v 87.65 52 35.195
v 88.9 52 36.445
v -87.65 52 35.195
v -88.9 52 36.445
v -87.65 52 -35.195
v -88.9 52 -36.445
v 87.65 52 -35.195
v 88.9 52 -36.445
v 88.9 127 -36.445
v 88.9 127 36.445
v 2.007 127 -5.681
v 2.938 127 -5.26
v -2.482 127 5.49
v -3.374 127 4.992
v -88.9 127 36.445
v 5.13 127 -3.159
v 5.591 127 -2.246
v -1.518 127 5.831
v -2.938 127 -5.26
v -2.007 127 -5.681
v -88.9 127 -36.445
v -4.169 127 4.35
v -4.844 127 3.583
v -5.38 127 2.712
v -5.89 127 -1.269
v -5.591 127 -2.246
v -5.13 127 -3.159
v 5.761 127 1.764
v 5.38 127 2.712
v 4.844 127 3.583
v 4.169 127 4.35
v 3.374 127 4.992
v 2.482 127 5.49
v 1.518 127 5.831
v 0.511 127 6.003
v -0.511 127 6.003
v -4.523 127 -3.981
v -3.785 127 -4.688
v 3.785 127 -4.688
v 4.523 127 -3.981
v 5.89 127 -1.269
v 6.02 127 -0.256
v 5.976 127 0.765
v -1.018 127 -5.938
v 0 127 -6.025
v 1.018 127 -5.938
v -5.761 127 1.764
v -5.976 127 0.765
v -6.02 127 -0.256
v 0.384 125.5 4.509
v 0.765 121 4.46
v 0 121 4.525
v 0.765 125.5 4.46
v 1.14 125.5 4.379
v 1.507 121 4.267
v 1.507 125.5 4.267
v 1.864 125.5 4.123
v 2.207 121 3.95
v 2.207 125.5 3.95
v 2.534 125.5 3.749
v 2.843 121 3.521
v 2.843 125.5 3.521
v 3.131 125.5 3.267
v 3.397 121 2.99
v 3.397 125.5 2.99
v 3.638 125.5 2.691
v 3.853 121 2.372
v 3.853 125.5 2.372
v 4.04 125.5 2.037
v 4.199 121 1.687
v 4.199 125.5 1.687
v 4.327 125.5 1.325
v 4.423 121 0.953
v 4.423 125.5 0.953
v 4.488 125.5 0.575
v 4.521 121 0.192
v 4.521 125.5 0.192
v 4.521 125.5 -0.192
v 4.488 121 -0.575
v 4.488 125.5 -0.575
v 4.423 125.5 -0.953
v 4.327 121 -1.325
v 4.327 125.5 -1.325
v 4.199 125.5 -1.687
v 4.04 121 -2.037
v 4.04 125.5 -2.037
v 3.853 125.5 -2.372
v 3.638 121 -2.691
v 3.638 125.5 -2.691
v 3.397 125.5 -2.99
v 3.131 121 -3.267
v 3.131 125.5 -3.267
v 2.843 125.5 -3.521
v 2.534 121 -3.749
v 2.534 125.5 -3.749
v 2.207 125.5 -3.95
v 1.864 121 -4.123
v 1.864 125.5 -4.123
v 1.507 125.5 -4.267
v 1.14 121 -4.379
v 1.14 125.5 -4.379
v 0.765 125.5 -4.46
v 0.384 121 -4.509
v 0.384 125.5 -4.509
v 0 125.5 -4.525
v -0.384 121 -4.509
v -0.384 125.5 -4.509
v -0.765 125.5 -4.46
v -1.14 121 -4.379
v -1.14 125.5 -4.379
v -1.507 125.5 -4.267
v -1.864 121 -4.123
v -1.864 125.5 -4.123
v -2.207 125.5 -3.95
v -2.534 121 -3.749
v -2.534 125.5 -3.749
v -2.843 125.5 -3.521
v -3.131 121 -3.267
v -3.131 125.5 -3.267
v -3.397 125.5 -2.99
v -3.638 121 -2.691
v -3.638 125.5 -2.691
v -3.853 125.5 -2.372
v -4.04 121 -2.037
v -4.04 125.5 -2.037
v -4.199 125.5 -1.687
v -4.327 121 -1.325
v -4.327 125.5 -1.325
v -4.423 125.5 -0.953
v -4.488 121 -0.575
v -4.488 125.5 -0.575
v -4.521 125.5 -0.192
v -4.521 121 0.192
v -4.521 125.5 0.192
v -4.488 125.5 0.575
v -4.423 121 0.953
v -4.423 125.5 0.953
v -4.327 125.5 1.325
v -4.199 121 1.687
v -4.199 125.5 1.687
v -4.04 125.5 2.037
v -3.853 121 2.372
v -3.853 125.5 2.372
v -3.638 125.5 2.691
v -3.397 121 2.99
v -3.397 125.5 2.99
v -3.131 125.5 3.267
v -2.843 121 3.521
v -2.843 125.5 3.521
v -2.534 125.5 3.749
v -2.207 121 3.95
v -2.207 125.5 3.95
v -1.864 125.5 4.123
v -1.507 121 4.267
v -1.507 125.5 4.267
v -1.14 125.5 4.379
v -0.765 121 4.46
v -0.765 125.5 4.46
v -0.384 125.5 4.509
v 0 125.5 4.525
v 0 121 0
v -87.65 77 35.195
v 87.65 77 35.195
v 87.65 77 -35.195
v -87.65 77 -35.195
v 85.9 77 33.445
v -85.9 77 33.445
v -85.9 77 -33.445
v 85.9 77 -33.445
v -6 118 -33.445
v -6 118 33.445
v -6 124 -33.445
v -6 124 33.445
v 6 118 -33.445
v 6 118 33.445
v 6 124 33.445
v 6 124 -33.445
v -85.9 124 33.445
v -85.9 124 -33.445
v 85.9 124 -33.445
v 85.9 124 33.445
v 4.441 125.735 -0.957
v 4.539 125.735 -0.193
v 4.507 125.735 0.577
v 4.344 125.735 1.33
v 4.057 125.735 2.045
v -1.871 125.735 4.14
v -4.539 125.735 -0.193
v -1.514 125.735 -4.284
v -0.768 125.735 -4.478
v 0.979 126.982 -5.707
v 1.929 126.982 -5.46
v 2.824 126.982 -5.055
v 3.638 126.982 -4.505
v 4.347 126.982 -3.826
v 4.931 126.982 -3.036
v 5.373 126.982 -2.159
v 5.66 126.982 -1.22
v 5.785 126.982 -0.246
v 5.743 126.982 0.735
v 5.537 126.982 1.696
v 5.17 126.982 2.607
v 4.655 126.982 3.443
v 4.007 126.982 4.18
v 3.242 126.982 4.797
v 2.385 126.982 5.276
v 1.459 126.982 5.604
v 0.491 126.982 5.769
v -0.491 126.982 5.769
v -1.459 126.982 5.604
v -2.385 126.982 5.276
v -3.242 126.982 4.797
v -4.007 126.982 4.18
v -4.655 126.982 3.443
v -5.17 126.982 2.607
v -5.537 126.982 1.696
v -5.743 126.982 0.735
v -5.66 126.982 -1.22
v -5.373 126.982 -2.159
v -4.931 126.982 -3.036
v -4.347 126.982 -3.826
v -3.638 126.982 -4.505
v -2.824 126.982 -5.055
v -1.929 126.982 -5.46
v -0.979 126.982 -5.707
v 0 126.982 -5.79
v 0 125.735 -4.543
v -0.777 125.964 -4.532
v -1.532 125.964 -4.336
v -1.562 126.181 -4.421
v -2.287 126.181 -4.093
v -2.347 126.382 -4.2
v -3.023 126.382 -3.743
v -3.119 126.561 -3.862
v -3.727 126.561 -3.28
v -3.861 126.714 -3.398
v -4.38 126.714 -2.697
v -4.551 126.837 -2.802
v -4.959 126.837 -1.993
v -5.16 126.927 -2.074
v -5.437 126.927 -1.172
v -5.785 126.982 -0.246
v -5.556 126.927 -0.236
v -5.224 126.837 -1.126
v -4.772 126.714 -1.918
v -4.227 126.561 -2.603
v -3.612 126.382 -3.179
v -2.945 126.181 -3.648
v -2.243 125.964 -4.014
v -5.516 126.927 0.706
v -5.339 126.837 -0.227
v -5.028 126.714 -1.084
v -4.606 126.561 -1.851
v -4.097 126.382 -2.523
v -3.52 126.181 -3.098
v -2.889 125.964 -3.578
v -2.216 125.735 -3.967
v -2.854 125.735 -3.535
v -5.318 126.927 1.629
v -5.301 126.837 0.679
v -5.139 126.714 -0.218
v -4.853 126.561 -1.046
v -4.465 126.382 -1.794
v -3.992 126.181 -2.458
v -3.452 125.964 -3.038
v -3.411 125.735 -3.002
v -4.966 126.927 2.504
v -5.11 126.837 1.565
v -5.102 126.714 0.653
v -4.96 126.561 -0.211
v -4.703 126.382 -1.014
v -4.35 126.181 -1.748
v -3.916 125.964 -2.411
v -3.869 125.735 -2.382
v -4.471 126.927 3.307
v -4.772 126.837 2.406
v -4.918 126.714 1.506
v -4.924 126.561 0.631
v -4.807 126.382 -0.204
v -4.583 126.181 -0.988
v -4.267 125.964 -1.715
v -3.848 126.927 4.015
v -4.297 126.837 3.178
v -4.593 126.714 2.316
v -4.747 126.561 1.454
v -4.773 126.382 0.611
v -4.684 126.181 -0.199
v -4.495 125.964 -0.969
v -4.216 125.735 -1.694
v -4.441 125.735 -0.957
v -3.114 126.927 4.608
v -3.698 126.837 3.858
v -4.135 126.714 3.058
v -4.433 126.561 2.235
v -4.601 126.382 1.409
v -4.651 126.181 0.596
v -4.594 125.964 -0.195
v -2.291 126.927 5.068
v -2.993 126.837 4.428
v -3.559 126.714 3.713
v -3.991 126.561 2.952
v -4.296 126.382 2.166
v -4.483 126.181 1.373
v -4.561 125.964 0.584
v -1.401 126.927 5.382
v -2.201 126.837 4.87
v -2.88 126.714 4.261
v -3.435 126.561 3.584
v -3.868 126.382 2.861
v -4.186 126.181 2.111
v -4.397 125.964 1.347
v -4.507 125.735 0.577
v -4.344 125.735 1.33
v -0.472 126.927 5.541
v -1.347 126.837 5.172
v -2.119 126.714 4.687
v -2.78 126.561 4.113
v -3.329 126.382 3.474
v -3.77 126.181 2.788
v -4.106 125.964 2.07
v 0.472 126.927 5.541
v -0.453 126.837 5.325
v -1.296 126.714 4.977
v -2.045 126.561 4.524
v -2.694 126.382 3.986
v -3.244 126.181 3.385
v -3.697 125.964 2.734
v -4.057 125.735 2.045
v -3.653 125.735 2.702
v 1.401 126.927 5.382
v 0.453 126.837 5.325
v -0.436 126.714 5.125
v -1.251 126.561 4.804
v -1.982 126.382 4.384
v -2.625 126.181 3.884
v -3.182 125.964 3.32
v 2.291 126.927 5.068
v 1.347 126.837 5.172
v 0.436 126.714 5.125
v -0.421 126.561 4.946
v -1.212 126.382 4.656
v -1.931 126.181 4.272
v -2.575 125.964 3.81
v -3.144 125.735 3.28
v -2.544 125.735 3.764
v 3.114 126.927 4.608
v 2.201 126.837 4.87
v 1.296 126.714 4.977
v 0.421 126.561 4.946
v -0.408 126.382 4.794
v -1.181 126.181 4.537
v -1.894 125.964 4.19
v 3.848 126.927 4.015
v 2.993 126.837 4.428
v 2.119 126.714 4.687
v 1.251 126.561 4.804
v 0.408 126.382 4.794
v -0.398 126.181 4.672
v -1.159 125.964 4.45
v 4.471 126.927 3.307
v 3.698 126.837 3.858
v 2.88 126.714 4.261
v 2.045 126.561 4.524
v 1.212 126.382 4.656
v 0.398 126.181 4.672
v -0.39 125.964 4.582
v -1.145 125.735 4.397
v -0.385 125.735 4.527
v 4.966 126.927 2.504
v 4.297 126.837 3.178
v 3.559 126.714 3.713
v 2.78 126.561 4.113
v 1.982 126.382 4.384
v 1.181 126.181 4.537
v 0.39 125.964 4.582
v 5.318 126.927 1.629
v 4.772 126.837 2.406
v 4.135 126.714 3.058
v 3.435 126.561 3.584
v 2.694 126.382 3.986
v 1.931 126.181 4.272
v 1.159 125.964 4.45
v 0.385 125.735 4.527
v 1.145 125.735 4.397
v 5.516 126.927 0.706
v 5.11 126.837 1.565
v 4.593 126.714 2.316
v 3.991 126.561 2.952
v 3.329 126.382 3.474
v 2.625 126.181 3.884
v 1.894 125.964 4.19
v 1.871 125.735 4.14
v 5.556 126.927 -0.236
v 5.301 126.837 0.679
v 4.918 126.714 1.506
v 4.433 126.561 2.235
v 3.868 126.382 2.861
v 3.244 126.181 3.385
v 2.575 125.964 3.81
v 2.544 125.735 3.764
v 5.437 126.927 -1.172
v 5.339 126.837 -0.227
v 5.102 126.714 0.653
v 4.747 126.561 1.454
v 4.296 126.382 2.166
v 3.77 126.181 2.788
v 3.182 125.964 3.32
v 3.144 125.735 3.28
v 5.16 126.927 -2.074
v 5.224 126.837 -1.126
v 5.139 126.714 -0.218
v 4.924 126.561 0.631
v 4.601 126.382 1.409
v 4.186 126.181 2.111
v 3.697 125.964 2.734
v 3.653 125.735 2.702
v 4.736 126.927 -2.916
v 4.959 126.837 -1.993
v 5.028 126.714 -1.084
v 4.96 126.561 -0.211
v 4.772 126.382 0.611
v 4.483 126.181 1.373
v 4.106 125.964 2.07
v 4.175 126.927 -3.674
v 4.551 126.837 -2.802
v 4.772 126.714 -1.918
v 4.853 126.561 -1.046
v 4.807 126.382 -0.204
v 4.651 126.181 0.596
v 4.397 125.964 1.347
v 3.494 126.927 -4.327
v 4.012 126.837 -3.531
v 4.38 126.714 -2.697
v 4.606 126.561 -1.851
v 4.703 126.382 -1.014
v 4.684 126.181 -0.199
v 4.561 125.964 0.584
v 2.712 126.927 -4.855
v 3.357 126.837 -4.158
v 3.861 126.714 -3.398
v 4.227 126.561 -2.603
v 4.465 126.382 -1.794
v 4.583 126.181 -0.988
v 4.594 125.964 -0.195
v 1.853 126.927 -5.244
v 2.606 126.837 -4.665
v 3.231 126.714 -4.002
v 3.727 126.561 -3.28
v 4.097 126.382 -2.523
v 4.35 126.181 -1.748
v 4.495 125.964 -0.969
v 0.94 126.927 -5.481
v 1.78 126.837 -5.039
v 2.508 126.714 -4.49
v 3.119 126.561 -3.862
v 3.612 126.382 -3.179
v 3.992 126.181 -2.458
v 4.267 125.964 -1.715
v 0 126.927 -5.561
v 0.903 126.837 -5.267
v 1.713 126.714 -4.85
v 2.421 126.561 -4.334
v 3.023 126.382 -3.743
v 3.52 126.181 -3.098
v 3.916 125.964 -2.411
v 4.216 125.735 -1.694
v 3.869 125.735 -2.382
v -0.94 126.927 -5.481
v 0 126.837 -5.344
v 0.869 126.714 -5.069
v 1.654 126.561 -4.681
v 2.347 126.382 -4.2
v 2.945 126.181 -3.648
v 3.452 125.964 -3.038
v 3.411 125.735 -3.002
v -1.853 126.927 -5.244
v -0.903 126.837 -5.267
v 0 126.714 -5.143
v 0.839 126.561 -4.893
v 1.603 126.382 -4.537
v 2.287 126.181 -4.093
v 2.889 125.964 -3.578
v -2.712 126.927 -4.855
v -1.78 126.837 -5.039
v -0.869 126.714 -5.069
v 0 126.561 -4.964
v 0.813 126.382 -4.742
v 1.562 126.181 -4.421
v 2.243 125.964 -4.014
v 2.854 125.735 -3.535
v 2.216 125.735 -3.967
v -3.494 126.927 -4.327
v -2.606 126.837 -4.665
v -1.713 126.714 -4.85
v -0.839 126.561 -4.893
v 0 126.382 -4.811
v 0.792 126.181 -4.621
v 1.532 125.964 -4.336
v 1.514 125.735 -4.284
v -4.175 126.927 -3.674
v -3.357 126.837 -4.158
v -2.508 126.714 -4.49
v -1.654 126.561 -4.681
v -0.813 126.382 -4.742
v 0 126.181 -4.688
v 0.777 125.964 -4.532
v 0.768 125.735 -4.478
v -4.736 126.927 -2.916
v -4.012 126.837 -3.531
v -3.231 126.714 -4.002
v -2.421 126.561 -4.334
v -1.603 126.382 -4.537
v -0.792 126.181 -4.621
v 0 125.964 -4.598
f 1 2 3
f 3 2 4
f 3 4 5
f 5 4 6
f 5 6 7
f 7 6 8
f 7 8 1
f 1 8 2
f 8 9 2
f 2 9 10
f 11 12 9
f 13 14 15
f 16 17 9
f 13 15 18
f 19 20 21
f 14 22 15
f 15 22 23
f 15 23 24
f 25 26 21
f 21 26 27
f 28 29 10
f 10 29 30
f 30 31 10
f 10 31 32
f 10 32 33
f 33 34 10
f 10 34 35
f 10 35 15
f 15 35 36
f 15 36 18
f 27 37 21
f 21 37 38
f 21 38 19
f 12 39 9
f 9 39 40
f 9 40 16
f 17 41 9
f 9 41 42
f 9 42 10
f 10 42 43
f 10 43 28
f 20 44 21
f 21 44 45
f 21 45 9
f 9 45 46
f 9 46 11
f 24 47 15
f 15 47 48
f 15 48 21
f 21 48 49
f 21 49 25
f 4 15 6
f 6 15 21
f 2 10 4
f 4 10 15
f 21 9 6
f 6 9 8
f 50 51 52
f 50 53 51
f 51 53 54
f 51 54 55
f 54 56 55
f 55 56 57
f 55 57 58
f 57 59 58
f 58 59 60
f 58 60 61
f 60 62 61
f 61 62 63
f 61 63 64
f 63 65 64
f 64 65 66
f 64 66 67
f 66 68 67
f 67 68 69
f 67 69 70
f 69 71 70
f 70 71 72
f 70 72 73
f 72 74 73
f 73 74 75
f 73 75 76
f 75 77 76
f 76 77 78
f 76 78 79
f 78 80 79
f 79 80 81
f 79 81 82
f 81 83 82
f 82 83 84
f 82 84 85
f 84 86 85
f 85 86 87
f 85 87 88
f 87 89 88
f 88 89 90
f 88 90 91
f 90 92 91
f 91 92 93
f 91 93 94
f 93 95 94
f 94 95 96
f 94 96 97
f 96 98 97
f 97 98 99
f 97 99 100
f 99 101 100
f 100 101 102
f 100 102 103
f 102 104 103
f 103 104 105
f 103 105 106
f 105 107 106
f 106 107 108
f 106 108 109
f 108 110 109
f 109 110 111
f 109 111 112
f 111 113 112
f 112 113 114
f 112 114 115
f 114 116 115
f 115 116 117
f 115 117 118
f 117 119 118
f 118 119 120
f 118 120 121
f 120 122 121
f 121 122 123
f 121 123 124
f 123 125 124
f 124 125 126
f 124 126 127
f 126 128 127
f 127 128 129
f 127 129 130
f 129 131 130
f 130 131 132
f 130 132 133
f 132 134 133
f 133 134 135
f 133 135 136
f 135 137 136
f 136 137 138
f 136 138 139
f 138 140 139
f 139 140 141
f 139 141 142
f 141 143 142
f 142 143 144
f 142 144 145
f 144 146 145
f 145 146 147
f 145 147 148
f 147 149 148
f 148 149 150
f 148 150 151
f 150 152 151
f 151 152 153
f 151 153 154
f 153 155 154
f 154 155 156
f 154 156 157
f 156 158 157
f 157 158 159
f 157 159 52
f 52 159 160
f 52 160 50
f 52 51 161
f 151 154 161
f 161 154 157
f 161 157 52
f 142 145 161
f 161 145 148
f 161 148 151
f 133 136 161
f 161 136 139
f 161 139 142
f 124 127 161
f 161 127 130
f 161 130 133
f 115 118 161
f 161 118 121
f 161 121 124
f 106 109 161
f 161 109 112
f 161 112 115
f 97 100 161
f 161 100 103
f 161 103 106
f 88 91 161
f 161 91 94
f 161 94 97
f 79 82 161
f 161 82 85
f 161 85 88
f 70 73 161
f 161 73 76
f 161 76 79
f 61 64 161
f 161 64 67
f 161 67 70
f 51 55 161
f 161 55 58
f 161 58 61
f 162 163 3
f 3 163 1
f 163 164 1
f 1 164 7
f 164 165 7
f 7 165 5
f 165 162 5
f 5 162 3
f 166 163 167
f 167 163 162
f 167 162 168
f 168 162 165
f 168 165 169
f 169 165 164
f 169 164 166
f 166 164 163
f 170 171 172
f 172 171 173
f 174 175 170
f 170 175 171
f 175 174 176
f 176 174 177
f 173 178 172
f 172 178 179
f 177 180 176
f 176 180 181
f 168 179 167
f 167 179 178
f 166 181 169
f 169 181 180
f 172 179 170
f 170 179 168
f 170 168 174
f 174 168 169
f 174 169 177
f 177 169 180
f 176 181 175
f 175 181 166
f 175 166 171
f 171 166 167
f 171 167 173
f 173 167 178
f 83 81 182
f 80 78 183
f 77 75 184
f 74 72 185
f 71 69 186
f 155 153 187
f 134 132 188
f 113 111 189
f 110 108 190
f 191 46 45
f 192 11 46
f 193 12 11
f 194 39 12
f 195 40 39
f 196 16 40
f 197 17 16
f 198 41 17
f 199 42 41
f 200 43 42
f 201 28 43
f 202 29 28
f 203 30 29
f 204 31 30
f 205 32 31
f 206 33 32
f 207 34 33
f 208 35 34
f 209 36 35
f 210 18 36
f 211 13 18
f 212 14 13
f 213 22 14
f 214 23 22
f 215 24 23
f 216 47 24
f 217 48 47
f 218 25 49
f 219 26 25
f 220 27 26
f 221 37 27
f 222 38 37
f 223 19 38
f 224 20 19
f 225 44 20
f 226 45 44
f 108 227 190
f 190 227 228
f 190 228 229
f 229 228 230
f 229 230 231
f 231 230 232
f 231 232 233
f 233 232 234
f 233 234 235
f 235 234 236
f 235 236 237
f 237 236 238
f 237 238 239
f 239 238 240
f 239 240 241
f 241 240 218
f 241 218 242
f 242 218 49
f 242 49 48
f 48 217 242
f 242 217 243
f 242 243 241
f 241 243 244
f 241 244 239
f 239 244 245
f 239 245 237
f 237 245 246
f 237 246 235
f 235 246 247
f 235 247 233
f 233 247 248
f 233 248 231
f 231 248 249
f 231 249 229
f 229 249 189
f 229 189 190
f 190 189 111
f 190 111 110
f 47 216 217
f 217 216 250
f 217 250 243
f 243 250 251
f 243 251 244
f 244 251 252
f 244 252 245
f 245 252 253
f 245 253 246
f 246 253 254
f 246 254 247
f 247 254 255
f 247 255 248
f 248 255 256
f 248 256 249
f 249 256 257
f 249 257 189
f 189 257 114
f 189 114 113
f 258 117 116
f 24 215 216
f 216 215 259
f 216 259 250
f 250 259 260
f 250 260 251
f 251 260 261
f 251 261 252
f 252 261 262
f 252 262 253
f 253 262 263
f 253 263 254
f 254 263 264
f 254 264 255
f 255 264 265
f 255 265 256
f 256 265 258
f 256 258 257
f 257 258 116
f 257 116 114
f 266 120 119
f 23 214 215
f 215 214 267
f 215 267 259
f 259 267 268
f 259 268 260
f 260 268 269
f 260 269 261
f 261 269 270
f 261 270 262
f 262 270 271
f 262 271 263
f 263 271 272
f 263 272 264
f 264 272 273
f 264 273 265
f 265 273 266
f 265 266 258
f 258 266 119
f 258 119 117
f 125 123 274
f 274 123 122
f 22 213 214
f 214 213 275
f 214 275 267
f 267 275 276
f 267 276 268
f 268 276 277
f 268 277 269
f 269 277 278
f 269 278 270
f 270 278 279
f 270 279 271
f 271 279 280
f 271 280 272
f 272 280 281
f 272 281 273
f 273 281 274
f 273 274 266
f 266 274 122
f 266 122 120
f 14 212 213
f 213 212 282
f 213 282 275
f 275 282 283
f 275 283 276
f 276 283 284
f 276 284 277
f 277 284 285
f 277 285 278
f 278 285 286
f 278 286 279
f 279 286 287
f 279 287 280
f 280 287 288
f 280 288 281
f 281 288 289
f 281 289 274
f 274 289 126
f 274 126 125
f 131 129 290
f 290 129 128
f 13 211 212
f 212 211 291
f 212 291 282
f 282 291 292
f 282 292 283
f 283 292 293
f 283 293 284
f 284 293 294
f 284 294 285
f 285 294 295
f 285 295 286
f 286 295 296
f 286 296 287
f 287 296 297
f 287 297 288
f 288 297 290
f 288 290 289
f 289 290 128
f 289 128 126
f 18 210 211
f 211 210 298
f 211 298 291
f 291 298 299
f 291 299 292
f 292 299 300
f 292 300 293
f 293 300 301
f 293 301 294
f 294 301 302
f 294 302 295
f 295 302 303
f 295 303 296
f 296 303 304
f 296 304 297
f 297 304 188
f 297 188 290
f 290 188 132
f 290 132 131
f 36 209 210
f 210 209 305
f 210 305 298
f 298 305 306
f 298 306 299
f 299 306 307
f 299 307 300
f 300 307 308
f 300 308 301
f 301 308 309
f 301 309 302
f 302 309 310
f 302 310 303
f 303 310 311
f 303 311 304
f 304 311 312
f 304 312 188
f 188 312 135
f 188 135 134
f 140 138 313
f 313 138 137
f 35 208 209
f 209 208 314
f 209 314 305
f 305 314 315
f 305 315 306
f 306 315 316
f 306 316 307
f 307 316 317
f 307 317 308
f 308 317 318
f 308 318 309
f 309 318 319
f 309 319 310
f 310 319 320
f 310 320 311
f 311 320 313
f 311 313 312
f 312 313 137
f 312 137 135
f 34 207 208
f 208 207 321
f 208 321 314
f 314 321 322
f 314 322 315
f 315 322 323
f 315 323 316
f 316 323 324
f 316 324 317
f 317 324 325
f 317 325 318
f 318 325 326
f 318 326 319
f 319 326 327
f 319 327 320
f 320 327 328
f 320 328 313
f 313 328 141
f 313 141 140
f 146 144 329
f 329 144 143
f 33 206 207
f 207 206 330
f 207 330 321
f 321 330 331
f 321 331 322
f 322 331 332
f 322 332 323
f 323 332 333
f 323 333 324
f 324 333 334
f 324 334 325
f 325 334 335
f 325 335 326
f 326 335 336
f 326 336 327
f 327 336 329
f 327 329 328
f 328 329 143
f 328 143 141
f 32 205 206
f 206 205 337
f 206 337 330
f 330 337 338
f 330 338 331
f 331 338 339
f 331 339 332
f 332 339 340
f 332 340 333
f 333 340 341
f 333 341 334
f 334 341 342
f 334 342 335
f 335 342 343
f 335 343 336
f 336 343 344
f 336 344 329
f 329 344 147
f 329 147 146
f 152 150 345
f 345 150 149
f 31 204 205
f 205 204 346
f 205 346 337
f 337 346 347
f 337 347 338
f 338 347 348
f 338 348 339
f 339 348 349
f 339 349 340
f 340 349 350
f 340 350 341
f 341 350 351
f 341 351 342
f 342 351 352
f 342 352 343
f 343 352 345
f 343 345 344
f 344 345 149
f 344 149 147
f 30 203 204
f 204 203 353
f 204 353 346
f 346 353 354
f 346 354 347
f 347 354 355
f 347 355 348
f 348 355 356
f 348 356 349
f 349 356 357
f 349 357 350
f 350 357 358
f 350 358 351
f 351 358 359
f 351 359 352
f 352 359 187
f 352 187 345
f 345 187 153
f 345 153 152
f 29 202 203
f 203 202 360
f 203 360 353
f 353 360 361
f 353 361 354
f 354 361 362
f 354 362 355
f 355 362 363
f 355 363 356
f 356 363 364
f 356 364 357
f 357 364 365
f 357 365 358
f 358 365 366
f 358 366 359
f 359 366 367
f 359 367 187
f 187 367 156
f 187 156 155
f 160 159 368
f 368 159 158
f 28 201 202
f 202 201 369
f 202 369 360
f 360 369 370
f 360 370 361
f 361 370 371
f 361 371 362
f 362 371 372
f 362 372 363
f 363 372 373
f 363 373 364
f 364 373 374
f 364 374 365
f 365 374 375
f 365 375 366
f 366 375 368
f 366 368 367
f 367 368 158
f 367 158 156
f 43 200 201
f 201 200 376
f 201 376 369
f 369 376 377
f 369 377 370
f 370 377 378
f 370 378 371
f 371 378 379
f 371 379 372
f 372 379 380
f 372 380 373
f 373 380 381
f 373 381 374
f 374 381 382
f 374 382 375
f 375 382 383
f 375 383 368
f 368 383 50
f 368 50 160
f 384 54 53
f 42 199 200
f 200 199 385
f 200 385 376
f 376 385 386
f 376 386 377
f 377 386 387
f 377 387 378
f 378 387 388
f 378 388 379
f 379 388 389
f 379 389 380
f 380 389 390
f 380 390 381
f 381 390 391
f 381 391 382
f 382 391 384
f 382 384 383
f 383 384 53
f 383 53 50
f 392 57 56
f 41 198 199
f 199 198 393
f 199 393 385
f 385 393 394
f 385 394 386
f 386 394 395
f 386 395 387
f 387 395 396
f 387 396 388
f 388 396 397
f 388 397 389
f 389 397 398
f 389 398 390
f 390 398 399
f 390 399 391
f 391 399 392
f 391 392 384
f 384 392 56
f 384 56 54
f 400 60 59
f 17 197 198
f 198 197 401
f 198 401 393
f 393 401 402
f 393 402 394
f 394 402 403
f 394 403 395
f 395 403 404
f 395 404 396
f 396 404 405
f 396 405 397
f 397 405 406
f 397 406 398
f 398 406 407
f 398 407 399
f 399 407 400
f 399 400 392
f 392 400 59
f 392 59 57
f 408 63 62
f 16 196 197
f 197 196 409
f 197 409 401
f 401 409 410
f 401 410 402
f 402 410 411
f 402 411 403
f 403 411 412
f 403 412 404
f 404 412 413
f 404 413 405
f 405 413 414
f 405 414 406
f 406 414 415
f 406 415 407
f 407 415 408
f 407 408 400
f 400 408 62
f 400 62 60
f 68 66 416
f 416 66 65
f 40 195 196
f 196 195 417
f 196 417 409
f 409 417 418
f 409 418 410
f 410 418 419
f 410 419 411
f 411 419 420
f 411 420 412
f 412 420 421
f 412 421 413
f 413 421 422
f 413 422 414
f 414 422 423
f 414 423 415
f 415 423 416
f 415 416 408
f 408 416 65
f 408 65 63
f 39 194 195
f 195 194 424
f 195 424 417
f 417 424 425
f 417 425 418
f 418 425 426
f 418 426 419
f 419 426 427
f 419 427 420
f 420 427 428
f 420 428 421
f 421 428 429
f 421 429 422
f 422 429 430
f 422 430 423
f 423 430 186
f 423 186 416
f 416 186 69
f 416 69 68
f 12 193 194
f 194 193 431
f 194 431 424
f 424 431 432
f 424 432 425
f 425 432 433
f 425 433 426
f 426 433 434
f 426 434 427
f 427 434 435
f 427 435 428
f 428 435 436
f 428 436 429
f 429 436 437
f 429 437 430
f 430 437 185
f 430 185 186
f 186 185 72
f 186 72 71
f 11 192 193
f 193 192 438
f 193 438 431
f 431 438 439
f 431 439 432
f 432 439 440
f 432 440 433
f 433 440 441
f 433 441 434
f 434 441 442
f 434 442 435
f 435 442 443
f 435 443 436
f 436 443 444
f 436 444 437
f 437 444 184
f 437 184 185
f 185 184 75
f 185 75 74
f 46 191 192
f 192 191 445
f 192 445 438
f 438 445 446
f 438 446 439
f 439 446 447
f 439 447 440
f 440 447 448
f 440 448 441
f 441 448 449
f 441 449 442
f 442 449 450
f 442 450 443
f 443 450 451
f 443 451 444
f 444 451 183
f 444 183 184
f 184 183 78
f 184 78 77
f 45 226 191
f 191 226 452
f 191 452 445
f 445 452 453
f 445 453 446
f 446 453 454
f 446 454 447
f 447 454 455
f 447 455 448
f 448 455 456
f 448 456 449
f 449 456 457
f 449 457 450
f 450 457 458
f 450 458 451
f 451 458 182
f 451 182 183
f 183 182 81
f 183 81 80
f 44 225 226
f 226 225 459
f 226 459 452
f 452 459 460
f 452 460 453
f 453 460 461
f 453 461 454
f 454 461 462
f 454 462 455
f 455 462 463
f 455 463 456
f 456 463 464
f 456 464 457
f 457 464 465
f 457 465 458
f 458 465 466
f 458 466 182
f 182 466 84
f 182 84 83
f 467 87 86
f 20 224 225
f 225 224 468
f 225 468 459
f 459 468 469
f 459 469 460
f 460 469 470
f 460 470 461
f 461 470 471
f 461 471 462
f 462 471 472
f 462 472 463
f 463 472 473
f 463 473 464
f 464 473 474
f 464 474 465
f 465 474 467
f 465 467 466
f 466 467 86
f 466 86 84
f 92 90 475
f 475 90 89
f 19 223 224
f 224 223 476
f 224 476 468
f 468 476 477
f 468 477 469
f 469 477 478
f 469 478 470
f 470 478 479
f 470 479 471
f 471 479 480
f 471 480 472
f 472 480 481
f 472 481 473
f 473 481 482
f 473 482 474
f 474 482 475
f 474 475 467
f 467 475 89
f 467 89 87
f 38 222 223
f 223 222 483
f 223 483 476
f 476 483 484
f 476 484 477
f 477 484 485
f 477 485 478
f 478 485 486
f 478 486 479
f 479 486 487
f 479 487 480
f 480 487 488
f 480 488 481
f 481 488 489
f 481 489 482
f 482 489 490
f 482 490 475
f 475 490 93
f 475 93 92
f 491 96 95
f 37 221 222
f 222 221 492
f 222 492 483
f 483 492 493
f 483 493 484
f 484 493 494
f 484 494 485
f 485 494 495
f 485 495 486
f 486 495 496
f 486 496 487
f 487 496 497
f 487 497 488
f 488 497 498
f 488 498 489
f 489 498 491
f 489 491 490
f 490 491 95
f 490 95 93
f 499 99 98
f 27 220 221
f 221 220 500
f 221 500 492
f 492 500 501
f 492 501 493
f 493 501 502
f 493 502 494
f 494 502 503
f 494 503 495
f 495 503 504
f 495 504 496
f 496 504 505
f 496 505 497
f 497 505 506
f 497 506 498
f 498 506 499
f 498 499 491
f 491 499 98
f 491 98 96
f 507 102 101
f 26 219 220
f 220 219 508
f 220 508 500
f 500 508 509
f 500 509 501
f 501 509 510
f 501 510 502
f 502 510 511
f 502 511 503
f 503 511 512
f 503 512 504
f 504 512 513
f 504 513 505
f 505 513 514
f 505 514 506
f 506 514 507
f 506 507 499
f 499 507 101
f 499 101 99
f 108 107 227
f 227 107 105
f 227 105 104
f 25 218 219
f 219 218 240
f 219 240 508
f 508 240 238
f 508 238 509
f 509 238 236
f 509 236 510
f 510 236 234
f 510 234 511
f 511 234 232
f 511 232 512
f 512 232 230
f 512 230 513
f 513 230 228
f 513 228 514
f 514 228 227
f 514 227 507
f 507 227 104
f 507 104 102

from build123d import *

# Parameters (mm, degrees)
SKETCH1_W           = 177.8
SKETCH1_H           = 254
BOSS_EXTRUDE1_DEPTH = 36.445
SHELL1_T            = 3
SKETCH2_R           = 22
CUT_EXTRUDE1_DEPTH  = 3
SKETCH3_R           = 5
CUT_EXTRUDE2_DEPTH  = 3
SKETCH12_W          = 12
SKETCH12_H          = 66.89
BOSS_EXTRUDE5_DEPTH = 6
SKETCH10_R          = 4.525
CUT_EXTRUDE8_DEPTH  = 6
SKETCH13_W          = 174.8
SKETCH13_H          = 69.89
SKETCH13_W_2        = 171.8
SKETCH13_H_2        = 66.89
BOSS_EXTRUDE6_DEPTH = 10
SKETCH14_W          = 175.3
SKETCH14_H          = 70.39
SKETCH14_W_2        = 171.8
SKETCH14_H_2        = 66.89
CUT_EXTRUDE9_DEPTH  = 25
SKETCH17_W          = 171.8
SKETCH17_H          = 66.89
BOSS_EXTRUDE7_DEPTH = 2
SKETCH15_R          = 8.05
CUT_EXTRUDE10_DEPTH = 5
SKETCH18_R          = 2.875
CUT_EXTRUDE11_DEPTH = 4.7
FILLET1_R           = 1.5


with BuildPart() as part:
    # Sketch1 → Boss-Extrude1 (new, symmetric)
    with BuildSketch(Plane.XY):
        Rectangle(SKETCH1_W, SKETCH1_H)
    extrude(amount=BOSS_EXTRUDE1_DEPTH, both=True)

    # Shell1 (no face opened: a closed hollow body)
    add(offset(amount=-SHELL1_T, mode=Mode.PRIVATE), mode=Mode.SUBTRACT)

    # Sketch2 → Cut-Extrude1 (cut)
    with BuildSketch(Plane(origin=(0, 0, 33.445), x_dir=(-1, 0, 0), z_dir=(0, 0, -1))):
        with Locations((0, -4)):
            Circle(SKETCH2_R)
    extrude(amount=-CUT_EXTRUDE1_DEPTH, mode=Mode.SUBTRACT)

    # Sketch3 → Cut-Extrude2 (cut)
    with BuildSketch(Plane.XY.offset(-33.445)):
        with Locations((-20.9, 34)):
            Circle(SKETCH3_R)
    extrude(amount=-CUT_EXTRUDE2_DEPTH, mode=Mode.SUBTRACT)

    # Sketch12 → Boss-Extrude5 (add)
    with BuildSketch(Plane.XZ.offset(-124)):
        Rectangle(SKETCH12_W, SKETCH12_H)
    extrude(amount=BOSS_EXTRUDE5_DEPTH)

    # Sketch10 → Cut-Extrude8 (cut)
    with BuildSketch(Plane(origin=(0, 127, 0), x_dir=(1, 0, 0), z_dir=(0, 1, 0))):
        with Locations(Location((0, 0, 0), (0, 0, 270))):
            Circle(SKETCH10_R)
    extrude(amount=-CUT_EXTRUDE8_DEPTH, mode=Mode.SUBTRACT)


with BuildPart() as body_2:
    # Split2: the piece on the far side of the plane
    add(part.part)
    split(bisect_by=Plane.ZX.offset(52), keep=Keep.BOTTOM)

    # Sketch13 → Boss-Extrude6 (add)
    with BuildSketch(Plane(origin=(0, 52, 0), x_dir=(1, 0, 0), z_dir=(0, 1, 0))):
        Rectangle(SKETCH13_W, SKETCH13_H)
        Rectangle(SKETCH13_W_2, SKETCH13_H_2, mode=Mode.SUBTRACT)
    extrude(amount=BOSS_EXTRUDE6_DEPTH)

    # Sketch17 → Boss-Extrude7 (add)
    with BuildSketch(Plane(origin=(0, -124, 0), x_dir=(1, 0, 0), z_dir=(0, 1, 0))):
        Rectangle(SKETCH17_W, SKETCH17_H)
    extrude(amount=BOSS_EXTRUDE7_DEPTH)

    # Sketch15 → Cut-Extrude10 (cut)
    with BuildSketch(Plane.XZ.offset(127)):
        with Locations(Location((0, 0, 0), (0, 0, 270))):
            Circle(SKETCH15_R)
    extrude(amount=-CUT_EXTRUDE10_DEPTH, mode=Mode.SUBTRACT)

    # Sketch18 → Cut-Extrude11 (cut)
    with BuildSketch(Plane.XZ.offset(127)):
        with Locations(Location((-7.778174593, 7.778174593, 0), (0, 0, 270))):
            Circle(SKETCH18_R)
        with Locations(Location((7.778174593, 7.778174593, 0), (0, 0, 270))):
            Circle(SKETCH18_R)
        with Locations(Location((7.778174593, -7.778174593, 0), (0, 0, 270))):
            Circle(SKETCH18_R)
        with Locations(Location((-7.778174593, -7.778174593, 0), (0, 0, 270))):
            Circle(SKETCH18_R)
    extrude(amount=-CUT_EXTRUDE11_DEPTH, mode=Mode.SUBTRACT)


with BuildPart() as part_1:
    add(part.part)

    # Split2
    split(bisect_by=Plane.ZX.offset(52), keep=Keep.TOP)

    # Sketch14 → Cut-Extrude9 (cut)
    with BuildSketch(Plane.XZ.offset(-52)):
        Rectangle(SKETCH14_W, SKETCH14_H)
        Rectangle(SKETCH14_W_2, SKETCH14_H_2, mode=Mode.SUBTRACT)
    extrude(amount=-CUT_EXTRUDE9_DEPTH, mode=Mode.SUBTRACT)

    # Fillet1
    fillet1_edges = [part_1.edges().sort_by_distance(p)[0] for p in [
        (0, 127, -4.525),
    ]]
    fillet(fillet1_edges, radius=FILLET1_R)


solid = part_1.part
